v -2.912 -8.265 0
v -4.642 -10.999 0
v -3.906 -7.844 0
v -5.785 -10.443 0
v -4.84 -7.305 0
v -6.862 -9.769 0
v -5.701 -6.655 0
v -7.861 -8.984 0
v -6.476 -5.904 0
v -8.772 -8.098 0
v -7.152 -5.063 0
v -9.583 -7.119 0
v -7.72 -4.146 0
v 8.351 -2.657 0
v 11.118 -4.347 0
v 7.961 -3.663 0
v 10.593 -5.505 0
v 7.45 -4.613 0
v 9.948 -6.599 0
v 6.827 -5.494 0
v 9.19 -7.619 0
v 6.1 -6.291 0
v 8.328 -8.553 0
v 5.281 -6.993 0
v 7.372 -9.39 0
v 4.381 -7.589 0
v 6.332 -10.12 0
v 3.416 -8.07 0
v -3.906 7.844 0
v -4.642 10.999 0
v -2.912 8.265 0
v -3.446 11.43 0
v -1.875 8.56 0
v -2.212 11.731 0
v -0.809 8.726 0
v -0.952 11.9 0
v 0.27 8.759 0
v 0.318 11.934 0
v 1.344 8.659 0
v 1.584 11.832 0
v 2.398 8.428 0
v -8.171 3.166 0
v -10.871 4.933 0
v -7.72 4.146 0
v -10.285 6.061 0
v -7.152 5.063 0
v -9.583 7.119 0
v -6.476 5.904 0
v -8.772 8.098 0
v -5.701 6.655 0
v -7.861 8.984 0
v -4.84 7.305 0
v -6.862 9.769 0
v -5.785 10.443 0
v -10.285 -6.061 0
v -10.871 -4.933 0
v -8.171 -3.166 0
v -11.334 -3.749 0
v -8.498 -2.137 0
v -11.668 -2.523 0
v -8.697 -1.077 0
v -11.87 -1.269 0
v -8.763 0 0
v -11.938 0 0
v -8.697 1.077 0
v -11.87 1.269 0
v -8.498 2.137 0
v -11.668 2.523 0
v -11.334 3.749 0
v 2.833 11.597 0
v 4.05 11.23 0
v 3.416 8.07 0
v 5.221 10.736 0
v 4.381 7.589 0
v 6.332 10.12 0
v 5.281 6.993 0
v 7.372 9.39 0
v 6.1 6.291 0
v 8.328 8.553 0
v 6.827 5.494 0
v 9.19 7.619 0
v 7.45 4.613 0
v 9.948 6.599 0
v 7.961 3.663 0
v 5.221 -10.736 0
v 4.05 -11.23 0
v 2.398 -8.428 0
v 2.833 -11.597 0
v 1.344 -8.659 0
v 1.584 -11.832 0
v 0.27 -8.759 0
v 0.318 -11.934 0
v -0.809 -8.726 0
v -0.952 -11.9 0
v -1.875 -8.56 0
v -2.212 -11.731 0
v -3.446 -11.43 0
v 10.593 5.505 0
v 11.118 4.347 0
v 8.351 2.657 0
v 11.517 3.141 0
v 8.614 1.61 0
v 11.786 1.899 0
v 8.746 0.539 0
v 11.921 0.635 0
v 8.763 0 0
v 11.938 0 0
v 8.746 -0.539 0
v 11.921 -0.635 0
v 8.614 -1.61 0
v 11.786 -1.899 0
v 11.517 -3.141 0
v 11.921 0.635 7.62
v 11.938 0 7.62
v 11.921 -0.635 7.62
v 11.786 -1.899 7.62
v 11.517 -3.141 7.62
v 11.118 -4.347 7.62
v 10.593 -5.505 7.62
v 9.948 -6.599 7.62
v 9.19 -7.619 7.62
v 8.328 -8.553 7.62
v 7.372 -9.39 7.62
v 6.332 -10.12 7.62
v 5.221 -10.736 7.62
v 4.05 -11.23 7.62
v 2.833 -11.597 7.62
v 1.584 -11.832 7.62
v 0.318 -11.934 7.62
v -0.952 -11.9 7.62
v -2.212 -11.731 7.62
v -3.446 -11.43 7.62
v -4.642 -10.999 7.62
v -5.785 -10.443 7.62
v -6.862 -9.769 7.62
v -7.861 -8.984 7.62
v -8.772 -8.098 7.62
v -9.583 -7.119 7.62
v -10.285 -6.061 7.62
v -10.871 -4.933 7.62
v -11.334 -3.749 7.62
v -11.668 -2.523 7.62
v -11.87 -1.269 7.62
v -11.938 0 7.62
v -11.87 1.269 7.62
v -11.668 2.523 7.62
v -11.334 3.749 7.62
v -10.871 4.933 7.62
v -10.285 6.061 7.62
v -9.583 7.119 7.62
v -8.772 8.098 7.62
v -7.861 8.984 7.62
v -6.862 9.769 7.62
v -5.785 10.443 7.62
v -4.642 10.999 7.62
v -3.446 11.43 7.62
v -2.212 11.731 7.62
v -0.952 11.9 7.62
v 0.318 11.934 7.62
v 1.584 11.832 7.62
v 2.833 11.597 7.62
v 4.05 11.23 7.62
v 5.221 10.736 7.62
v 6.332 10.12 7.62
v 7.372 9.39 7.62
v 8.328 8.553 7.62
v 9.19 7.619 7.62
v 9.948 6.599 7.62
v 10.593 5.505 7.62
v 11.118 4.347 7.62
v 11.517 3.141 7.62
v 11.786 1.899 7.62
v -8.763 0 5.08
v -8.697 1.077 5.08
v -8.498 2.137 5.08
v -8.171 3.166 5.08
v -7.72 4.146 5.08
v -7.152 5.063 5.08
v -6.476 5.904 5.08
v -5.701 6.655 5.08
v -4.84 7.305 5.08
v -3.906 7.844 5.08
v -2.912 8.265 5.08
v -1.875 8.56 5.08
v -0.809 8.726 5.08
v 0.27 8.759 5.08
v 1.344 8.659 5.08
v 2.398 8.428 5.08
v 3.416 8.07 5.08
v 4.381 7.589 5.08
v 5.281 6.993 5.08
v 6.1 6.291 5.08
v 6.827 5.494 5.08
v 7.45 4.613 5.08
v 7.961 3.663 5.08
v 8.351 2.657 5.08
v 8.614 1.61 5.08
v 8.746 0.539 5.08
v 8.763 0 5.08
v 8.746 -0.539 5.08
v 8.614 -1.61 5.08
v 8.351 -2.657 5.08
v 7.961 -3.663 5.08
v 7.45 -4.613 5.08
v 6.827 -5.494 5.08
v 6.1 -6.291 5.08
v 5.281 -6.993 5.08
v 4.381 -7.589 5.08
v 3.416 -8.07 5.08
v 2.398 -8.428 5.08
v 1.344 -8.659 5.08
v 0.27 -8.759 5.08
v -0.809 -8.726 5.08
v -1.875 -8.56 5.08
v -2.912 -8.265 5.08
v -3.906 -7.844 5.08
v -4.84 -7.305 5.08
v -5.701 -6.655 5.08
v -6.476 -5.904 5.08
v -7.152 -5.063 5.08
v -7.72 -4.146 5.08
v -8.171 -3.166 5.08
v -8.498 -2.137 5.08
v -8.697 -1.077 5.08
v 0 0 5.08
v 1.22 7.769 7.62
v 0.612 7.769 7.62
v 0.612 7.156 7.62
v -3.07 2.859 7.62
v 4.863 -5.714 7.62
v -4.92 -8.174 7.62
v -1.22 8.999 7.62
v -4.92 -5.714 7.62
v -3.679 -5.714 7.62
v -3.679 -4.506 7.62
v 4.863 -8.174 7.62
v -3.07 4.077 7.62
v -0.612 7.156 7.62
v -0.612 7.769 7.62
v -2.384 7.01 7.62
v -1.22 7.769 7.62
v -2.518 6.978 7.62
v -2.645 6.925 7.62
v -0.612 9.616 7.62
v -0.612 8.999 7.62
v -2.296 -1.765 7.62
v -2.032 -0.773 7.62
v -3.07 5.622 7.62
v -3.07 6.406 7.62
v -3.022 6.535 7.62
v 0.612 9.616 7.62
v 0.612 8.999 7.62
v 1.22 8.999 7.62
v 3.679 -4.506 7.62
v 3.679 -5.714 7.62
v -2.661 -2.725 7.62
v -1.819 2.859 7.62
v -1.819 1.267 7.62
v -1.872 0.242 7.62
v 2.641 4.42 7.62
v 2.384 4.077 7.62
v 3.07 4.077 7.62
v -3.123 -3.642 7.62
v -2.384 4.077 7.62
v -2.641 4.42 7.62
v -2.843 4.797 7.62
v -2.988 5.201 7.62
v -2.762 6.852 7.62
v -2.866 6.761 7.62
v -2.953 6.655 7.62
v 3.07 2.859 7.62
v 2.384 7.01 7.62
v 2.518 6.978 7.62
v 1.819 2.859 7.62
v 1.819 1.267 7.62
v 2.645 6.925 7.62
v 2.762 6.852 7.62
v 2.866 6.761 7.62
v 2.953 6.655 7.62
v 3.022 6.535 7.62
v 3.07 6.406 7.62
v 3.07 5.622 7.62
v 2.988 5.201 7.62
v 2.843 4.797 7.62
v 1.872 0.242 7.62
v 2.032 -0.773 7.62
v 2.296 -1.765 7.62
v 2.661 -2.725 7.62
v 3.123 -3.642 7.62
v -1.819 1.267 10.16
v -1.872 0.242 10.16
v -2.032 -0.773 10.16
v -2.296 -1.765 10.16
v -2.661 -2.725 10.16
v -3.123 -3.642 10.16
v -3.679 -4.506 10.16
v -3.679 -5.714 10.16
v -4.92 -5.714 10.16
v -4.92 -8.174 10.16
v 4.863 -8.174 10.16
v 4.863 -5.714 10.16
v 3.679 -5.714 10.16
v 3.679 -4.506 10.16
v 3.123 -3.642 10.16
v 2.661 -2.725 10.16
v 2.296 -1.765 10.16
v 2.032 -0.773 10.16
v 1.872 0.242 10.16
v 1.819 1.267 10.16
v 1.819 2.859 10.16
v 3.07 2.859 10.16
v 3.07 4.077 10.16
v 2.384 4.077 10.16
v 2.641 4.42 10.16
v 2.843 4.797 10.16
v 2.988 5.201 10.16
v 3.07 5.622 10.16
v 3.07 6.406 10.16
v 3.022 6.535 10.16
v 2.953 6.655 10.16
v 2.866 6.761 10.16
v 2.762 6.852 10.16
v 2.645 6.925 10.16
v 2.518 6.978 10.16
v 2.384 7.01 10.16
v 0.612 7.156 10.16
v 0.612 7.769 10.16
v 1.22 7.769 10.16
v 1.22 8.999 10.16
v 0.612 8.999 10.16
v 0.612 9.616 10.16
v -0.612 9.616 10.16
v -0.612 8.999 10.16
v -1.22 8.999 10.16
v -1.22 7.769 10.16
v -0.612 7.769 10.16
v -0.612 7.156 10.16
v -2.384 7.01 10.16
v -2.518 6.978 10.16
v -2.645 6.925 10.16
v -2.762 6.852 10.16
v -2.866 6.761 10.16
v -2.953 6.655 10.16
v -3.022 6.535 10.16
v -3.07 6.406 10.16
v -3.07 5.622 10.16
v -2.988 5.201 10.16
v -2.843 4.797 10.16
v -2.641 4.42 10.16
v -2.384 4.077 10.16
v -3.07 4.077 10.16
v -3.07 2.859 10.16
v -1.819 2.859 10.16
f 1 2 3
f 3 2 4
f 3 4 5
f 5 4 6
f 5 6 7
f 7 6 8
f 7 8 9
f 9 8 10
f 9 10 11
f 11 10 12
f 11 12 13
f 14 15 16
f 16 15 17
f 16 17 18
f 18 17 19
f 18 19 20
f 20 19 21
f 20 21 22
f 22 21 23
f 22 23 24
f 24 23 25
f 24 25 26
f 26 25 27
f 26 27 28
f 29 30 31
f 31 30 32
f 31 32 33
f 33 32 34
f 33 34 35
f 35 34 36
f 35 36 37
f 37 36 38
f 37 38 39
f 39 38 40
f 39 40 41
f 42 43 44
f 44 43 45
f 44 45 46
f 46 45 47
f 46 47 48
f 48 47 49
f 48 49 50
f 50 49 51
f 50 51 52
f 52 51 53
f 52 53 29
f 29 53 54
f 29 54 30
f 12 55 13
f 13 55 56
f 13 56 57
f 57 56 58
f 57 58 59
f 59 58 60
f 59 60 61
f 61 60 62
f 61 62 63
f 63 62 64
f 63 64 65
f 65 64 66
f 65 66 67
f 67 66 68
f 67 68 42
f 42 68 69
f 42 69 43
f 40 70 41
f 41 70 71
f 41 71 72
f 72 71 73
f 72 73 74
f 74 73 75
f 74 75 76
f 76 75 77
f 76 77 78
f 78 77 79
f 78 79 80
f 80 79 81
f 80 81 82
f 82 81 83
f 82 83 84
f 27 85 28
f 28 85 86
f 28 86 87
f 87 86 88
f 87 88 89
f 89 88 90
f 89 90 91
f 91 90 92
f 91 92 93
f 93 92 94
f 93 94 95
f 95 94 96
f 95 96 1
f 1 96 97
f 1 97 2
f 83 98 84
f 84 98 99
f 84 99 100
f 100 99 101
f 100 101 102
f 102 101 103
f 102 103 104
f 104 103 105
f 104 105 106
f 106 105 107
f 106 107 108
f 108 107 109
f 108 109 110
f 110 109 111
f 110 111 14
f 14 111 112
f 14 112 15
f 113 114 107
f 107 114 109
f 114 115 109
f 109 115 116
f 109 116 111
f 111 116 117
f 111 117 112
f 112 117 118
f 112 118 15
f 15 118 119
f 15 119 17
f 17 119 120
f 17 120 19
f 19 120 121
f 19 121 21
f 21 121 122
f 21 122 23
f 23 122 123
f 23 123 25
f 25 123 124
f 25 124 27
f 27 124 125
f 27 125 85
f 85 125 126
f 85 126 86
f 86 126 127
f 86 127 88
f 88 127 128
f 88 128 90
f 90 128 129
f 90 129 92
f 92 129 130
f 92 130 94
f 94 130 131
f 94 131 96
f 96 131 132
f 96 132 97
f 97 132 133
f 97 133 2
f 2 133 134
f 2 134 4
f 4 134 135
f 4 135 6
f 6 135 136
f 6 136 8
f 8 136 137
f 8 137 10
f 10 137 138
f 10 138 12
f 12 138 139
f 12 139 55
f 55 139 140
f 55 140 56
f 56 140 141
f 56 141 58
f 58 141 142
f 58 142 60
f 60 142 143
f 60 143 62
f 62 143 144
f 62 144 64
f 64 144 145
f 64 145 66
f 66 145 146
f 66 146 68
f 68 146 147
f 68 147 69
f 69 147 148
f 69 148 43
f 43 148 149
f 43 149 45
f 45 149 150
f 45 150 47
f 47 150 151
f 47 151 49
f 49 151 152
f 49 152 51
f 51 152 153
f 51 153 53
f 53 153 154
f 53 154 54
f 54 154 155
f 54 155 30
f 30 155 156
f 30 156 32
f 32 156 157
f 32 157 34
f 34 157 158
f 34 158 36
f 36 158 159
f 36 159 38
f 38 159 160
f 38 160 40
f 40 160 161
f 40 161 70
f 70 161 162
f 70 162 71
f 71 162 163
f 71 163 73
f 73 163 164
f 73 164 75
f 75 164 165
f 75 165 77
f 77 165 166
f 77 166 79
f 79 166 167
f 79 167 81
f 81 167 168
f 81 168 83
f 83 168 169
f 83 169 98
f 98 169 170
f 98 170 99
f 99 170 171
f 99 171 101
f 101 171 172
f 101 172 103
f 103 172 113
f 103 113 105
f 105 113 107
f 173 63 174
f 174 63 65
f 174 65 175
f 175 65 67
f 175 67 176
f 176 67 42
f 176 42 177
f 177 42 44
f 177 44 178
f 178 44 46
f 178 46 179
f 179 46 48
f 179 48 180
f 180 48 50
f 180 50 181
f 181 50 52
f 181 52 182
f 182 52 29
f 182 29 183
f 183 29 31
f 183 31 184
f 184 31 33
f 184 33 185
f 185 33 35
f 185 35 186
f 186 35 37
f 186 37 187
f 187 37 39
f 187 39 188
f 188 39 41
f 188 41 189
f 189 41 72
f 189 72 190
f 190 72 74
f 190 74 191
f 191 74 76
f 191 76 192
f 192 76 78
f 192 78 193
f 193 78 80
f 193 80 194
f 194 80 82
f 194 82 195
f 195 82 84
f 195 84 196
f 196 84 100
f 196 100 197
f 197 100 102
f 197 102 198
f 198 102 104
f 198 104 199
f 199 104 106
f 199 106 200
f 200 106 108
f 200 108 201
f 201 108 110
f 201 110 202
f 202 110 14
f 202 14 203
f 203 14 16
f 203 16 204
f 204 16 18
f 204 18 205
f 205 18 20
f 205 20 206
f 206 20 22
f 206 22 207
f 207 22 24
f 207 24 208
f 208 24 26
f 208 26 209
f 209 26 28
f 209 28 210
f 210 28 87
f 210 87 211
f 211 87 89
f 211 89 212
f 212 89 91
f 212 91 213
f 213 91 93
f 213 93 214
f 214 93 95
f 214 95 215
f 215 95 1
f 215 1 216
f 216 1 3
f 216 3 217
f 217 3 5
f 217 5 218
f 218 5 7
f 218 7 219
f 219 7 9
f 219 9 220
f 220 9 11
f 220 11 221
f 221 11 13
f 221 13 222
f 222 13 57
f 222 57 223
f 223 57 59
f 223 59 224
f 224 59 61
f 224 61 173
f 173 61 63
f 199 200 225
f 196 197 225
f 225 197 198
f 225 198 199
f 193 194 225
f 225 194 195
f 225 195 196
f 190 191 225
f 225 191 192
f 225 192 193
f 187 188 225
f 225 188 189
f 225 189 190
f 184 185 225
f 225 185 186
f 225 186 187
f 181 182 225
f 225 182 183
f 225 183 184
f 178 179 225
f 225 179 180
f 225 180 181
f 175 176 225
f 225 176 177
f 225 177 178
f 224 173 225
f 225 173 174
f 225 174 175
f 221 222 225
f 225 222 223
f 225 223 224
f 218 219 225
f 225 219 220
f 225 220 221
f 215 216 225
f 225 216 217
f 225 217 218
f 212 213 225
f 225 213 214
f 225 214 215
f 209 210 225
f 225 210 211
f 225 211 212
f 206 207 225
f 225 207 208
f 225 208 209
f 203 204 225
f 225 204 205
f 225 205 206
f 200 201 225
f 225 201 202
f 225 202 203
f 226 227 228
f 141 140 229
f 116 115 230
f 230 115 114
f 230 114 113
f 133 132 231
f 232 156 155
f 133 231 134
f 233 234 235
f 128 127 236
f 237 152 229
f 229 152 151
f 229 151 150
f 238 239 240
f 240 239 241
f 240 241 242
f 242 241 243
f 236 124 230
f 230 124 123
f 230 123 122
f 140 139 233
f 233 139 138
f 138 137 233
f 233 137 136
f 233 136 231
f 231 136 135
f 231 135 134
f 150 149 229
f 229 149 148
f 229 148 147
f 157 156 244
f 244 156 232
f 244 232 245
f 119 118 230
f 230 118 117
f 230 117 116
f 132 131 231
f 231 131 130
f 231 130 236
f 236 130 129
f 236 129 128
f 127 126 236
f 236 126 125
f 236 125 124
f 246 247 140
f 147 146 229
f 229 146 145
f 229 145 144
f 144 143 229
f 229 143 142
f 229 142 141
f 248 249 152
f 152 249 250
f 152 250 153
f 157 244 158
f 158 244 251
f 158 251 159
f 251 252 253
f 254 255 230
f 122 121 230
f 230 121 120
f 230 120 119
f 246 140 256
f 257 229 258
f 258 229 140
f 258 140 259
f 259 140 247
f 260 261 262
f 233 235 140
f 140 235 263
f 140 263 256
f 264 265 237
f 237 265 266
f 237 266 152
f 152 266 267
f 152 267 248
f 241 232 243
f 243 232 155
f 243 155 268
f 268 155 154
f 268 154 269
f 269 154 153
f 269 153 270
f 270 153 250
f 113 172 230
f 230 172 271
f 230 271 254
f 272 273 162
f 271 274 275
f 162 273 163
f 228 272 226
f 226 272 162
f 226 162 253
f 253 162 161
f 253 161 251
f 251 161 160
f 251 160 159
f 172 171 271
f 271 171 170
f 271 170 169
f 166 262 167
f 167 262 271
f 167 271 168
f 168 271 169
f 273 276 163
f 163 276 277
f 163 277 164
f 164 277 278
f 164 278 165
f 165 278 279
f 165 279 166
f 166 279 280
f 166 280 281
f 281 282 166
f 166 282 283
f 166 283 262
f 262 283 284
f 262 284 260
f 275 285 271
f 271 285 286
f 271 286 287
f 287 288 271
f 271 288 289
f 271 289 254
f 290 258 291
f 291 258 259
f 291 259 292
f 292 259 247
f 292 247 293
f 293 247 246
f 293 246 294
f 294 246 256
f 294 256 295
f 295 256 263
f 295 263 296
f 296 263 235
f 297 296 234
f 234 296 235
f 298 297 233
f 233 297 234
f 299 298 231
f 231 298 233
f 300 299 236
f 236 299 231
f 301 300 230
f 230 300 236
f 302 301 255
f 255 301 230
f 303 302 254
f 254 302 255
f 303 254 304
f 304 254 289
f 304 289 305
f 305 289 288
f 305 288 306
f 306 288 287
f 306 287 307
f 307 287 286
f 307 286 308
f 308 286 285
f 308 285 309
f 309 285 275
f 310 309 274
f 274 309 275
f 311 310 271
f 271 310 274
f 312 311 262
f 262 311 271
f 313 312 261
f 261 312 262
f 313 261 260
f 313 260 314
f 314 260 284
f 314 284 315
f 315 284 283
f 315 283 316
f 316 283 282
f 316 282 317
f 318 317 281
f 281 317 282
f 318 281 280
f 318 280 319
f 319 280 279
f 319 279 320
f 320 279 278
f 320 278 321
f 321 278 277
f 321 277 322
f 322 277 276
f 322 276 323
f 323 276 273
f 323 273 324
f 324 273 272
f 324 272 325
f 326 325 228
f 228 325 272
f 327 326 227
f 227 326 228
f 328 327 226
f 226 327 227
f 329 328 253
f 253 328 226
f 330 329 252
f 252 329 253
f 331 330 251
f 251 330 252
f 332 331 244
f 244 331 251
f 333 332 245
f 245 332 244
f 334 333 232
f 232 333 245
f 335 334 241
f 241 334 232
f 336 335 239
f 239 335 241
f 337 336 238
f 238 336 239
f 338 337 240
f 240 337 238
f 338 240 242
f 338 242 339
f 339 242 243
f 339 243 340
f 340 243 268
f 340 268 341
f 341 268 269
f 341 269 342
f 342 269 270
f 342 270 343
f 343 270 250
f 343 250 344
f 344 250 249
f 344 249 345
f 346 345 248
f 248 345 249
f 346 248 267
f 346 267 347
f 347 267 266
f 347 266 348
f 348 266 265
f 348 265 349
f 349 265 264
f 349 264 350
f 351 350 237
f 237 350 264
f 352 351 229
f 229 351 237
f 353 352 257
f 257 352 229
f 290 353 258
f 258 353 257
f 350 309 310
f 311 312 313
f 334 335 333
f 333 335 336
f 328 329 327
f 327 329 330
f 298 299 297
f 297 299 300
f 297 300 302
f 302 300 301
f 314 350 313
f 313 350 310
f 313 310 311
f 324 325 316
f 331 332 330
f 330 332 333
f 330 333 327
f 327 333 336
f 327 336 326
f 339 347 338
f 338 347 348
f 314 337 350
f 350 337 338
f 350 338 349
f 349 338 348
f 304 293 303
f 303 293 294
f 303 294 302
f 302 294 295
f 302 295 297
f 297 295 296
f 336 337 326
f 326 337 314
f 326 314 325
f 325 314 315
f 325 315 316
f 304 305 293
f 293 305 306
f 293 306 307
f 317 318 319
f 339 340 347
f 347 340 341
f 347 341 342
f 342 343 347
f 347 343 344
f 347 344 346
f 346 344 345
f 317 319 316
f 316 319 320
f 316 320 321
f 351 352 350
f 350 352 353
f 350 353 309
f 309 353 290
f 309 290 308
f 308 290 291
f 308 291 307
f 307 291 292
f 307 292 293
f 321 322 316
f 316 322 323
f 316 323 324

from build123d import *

# Parameters (mm, degrees)
SKETCH1_R           = 11.938
SKETCH1_R_2         = 8.763
BOSS_EXTRUDE1_DEPTH = 5.08
SKETCH2_R           = 11.938
BOSS_EXTRUDE2_DEPTH = 2.54
BOSS_EXTRUDE6_DEPTH = 2.54


with BuildPart() as part:
    # Sketch1 → Boss-Extrude1 (new body)
    with BuildSketch(Plane.XY):
        Circle(SKETCH1_R)
        Circle(SKETCH1_R_2, mode=Mode.SUBTRACT)
    extrude(amount=BOSS_EXTRUDE1_DEPTH)

    # Sketch2 → Boss-Extrude2 (add)
    with BuildSketch(Plane.XY.offset(5.08)):
        Circle(SKETCH2_R)
    extrude(amount=BOSS_EXTRUDE2_DEPTH)

    # Sketch3 → Boss-Extrude6 (add)
    with BuildSketch(Plane.XY.offset(7.62)):
        with BuildLine():
            Line((-3.678678712, -5.714068812), (-3.678678712, -4.50574791))
            ThreePointArc((-3.678678712, -4.50574791), (-2.295527202, -1.765380595), (-1.819182511, 1.267079934))
            Line((-1.819182511, 1.267079934), (-1.819182511, 2.8590046))
            Line((-1.819182511, 2.8590046), (-3.070257362, 2.8590046))
            Line((-3.070257362, 2.8590046), (-3.070257362, 4.076695904))
            Line((-3.070257362, 4.076695904), (-2.383695529, 4.076695904))
            ThreePointArc((-2.383695529, 4.076695904), (-2.843426725, 4.797347732), (-3.070257362, 5.621507725))
            Line((-3.070257362, 5.621507725), (-3.070257362, 6.406088041))
            ThreePointArc((-3.070257362, 6.406088041), (-2.815803075, 6.808897948), (-2.383695529, 7.00961136))
            Line((-2.383695529, 7.00961136), (-0.612171184, 7.15577449))
            Line((-0.612171184, 7.15577449), (-0.612171184, 7.768514842))
            Line((-0.612171184, 7.768514842), (-1.220124502, 7.768514842))
            Line((-1.220124502, 7.768514842), (-1.220124502, 8.998782581))
            Line((-1.220124502, 8.998782581), (-0.612171184, 8.998782581))
            Line((-0.612171184, 8.998782581), (-0.612171184, 9.616309967))
            Line((-0.612171184, 9.616309967), (0.612171184, 9.616309967))
            Line((0.612171184, 9.616309967), (0.612171184, 8.998782581))
            Line((0.612171184, 8.998782581), (1.220124502, 8.998782581))
            Line((1.220124502, 8.998782581), (1.220124502, 7.768514842))
            Line((1.220124502, 7.768514842), (0.612171184, 7.768514842))
            Line((0.612171184, 7.768514842), (0.612171184, 7.15577449))
            Line((0.612171184, 7.15577449), (2.383695529, 7.00961136))
            ThreePointArc((2.383695529, 7.00961136), (2.815803075, 6.808897948), (3.070257362, 6.406088041))
            Line((3.070257362, 6.406088041), (3.070257362, 5.621507725))
            ThreePointArc((3.070257362, 5.621507725), (2.843426725, 4.797347732), (2.383695529, 4.076695904))
            Line((2.383695529, 4.076695904), (3.070257362, 4.076695904))
            Line((3.070257362, 4.076695904), (3.070257362, 2.8590046))
            Line((3.070257362, 2.8590046), (1.819182511, 2.8590046))
            Line((1.819182511, 2.8590046), (1.819182511, 1.267079934))
            ThreePointArc((1.819182511, 1.267079934), (2.295527202, -1.765380595), (3.678678712, -4.50574791))
            Line((3.678678712, -4.50574791), (3.678678712, -5.714068812))
            Line((3.678678712, -5.714068812), (4.863085817, -5.714068812))
            Line((4.863085817, -5.714068812), (4.863085817, -8.173503524))
            Line((4.863085817, -8.173503524), (-4.920042397, -8.173503524))
            Line((-4.920042397, -8.173503524), (-4.920042397, -5.714068812))
            Line((-4.920042397, -5.714068812), (-3.678678712, -5.714068812))
        make_face()
    extrude(amount=BOSS_EXTRUDE6_DEPTH)


solid = part.part
